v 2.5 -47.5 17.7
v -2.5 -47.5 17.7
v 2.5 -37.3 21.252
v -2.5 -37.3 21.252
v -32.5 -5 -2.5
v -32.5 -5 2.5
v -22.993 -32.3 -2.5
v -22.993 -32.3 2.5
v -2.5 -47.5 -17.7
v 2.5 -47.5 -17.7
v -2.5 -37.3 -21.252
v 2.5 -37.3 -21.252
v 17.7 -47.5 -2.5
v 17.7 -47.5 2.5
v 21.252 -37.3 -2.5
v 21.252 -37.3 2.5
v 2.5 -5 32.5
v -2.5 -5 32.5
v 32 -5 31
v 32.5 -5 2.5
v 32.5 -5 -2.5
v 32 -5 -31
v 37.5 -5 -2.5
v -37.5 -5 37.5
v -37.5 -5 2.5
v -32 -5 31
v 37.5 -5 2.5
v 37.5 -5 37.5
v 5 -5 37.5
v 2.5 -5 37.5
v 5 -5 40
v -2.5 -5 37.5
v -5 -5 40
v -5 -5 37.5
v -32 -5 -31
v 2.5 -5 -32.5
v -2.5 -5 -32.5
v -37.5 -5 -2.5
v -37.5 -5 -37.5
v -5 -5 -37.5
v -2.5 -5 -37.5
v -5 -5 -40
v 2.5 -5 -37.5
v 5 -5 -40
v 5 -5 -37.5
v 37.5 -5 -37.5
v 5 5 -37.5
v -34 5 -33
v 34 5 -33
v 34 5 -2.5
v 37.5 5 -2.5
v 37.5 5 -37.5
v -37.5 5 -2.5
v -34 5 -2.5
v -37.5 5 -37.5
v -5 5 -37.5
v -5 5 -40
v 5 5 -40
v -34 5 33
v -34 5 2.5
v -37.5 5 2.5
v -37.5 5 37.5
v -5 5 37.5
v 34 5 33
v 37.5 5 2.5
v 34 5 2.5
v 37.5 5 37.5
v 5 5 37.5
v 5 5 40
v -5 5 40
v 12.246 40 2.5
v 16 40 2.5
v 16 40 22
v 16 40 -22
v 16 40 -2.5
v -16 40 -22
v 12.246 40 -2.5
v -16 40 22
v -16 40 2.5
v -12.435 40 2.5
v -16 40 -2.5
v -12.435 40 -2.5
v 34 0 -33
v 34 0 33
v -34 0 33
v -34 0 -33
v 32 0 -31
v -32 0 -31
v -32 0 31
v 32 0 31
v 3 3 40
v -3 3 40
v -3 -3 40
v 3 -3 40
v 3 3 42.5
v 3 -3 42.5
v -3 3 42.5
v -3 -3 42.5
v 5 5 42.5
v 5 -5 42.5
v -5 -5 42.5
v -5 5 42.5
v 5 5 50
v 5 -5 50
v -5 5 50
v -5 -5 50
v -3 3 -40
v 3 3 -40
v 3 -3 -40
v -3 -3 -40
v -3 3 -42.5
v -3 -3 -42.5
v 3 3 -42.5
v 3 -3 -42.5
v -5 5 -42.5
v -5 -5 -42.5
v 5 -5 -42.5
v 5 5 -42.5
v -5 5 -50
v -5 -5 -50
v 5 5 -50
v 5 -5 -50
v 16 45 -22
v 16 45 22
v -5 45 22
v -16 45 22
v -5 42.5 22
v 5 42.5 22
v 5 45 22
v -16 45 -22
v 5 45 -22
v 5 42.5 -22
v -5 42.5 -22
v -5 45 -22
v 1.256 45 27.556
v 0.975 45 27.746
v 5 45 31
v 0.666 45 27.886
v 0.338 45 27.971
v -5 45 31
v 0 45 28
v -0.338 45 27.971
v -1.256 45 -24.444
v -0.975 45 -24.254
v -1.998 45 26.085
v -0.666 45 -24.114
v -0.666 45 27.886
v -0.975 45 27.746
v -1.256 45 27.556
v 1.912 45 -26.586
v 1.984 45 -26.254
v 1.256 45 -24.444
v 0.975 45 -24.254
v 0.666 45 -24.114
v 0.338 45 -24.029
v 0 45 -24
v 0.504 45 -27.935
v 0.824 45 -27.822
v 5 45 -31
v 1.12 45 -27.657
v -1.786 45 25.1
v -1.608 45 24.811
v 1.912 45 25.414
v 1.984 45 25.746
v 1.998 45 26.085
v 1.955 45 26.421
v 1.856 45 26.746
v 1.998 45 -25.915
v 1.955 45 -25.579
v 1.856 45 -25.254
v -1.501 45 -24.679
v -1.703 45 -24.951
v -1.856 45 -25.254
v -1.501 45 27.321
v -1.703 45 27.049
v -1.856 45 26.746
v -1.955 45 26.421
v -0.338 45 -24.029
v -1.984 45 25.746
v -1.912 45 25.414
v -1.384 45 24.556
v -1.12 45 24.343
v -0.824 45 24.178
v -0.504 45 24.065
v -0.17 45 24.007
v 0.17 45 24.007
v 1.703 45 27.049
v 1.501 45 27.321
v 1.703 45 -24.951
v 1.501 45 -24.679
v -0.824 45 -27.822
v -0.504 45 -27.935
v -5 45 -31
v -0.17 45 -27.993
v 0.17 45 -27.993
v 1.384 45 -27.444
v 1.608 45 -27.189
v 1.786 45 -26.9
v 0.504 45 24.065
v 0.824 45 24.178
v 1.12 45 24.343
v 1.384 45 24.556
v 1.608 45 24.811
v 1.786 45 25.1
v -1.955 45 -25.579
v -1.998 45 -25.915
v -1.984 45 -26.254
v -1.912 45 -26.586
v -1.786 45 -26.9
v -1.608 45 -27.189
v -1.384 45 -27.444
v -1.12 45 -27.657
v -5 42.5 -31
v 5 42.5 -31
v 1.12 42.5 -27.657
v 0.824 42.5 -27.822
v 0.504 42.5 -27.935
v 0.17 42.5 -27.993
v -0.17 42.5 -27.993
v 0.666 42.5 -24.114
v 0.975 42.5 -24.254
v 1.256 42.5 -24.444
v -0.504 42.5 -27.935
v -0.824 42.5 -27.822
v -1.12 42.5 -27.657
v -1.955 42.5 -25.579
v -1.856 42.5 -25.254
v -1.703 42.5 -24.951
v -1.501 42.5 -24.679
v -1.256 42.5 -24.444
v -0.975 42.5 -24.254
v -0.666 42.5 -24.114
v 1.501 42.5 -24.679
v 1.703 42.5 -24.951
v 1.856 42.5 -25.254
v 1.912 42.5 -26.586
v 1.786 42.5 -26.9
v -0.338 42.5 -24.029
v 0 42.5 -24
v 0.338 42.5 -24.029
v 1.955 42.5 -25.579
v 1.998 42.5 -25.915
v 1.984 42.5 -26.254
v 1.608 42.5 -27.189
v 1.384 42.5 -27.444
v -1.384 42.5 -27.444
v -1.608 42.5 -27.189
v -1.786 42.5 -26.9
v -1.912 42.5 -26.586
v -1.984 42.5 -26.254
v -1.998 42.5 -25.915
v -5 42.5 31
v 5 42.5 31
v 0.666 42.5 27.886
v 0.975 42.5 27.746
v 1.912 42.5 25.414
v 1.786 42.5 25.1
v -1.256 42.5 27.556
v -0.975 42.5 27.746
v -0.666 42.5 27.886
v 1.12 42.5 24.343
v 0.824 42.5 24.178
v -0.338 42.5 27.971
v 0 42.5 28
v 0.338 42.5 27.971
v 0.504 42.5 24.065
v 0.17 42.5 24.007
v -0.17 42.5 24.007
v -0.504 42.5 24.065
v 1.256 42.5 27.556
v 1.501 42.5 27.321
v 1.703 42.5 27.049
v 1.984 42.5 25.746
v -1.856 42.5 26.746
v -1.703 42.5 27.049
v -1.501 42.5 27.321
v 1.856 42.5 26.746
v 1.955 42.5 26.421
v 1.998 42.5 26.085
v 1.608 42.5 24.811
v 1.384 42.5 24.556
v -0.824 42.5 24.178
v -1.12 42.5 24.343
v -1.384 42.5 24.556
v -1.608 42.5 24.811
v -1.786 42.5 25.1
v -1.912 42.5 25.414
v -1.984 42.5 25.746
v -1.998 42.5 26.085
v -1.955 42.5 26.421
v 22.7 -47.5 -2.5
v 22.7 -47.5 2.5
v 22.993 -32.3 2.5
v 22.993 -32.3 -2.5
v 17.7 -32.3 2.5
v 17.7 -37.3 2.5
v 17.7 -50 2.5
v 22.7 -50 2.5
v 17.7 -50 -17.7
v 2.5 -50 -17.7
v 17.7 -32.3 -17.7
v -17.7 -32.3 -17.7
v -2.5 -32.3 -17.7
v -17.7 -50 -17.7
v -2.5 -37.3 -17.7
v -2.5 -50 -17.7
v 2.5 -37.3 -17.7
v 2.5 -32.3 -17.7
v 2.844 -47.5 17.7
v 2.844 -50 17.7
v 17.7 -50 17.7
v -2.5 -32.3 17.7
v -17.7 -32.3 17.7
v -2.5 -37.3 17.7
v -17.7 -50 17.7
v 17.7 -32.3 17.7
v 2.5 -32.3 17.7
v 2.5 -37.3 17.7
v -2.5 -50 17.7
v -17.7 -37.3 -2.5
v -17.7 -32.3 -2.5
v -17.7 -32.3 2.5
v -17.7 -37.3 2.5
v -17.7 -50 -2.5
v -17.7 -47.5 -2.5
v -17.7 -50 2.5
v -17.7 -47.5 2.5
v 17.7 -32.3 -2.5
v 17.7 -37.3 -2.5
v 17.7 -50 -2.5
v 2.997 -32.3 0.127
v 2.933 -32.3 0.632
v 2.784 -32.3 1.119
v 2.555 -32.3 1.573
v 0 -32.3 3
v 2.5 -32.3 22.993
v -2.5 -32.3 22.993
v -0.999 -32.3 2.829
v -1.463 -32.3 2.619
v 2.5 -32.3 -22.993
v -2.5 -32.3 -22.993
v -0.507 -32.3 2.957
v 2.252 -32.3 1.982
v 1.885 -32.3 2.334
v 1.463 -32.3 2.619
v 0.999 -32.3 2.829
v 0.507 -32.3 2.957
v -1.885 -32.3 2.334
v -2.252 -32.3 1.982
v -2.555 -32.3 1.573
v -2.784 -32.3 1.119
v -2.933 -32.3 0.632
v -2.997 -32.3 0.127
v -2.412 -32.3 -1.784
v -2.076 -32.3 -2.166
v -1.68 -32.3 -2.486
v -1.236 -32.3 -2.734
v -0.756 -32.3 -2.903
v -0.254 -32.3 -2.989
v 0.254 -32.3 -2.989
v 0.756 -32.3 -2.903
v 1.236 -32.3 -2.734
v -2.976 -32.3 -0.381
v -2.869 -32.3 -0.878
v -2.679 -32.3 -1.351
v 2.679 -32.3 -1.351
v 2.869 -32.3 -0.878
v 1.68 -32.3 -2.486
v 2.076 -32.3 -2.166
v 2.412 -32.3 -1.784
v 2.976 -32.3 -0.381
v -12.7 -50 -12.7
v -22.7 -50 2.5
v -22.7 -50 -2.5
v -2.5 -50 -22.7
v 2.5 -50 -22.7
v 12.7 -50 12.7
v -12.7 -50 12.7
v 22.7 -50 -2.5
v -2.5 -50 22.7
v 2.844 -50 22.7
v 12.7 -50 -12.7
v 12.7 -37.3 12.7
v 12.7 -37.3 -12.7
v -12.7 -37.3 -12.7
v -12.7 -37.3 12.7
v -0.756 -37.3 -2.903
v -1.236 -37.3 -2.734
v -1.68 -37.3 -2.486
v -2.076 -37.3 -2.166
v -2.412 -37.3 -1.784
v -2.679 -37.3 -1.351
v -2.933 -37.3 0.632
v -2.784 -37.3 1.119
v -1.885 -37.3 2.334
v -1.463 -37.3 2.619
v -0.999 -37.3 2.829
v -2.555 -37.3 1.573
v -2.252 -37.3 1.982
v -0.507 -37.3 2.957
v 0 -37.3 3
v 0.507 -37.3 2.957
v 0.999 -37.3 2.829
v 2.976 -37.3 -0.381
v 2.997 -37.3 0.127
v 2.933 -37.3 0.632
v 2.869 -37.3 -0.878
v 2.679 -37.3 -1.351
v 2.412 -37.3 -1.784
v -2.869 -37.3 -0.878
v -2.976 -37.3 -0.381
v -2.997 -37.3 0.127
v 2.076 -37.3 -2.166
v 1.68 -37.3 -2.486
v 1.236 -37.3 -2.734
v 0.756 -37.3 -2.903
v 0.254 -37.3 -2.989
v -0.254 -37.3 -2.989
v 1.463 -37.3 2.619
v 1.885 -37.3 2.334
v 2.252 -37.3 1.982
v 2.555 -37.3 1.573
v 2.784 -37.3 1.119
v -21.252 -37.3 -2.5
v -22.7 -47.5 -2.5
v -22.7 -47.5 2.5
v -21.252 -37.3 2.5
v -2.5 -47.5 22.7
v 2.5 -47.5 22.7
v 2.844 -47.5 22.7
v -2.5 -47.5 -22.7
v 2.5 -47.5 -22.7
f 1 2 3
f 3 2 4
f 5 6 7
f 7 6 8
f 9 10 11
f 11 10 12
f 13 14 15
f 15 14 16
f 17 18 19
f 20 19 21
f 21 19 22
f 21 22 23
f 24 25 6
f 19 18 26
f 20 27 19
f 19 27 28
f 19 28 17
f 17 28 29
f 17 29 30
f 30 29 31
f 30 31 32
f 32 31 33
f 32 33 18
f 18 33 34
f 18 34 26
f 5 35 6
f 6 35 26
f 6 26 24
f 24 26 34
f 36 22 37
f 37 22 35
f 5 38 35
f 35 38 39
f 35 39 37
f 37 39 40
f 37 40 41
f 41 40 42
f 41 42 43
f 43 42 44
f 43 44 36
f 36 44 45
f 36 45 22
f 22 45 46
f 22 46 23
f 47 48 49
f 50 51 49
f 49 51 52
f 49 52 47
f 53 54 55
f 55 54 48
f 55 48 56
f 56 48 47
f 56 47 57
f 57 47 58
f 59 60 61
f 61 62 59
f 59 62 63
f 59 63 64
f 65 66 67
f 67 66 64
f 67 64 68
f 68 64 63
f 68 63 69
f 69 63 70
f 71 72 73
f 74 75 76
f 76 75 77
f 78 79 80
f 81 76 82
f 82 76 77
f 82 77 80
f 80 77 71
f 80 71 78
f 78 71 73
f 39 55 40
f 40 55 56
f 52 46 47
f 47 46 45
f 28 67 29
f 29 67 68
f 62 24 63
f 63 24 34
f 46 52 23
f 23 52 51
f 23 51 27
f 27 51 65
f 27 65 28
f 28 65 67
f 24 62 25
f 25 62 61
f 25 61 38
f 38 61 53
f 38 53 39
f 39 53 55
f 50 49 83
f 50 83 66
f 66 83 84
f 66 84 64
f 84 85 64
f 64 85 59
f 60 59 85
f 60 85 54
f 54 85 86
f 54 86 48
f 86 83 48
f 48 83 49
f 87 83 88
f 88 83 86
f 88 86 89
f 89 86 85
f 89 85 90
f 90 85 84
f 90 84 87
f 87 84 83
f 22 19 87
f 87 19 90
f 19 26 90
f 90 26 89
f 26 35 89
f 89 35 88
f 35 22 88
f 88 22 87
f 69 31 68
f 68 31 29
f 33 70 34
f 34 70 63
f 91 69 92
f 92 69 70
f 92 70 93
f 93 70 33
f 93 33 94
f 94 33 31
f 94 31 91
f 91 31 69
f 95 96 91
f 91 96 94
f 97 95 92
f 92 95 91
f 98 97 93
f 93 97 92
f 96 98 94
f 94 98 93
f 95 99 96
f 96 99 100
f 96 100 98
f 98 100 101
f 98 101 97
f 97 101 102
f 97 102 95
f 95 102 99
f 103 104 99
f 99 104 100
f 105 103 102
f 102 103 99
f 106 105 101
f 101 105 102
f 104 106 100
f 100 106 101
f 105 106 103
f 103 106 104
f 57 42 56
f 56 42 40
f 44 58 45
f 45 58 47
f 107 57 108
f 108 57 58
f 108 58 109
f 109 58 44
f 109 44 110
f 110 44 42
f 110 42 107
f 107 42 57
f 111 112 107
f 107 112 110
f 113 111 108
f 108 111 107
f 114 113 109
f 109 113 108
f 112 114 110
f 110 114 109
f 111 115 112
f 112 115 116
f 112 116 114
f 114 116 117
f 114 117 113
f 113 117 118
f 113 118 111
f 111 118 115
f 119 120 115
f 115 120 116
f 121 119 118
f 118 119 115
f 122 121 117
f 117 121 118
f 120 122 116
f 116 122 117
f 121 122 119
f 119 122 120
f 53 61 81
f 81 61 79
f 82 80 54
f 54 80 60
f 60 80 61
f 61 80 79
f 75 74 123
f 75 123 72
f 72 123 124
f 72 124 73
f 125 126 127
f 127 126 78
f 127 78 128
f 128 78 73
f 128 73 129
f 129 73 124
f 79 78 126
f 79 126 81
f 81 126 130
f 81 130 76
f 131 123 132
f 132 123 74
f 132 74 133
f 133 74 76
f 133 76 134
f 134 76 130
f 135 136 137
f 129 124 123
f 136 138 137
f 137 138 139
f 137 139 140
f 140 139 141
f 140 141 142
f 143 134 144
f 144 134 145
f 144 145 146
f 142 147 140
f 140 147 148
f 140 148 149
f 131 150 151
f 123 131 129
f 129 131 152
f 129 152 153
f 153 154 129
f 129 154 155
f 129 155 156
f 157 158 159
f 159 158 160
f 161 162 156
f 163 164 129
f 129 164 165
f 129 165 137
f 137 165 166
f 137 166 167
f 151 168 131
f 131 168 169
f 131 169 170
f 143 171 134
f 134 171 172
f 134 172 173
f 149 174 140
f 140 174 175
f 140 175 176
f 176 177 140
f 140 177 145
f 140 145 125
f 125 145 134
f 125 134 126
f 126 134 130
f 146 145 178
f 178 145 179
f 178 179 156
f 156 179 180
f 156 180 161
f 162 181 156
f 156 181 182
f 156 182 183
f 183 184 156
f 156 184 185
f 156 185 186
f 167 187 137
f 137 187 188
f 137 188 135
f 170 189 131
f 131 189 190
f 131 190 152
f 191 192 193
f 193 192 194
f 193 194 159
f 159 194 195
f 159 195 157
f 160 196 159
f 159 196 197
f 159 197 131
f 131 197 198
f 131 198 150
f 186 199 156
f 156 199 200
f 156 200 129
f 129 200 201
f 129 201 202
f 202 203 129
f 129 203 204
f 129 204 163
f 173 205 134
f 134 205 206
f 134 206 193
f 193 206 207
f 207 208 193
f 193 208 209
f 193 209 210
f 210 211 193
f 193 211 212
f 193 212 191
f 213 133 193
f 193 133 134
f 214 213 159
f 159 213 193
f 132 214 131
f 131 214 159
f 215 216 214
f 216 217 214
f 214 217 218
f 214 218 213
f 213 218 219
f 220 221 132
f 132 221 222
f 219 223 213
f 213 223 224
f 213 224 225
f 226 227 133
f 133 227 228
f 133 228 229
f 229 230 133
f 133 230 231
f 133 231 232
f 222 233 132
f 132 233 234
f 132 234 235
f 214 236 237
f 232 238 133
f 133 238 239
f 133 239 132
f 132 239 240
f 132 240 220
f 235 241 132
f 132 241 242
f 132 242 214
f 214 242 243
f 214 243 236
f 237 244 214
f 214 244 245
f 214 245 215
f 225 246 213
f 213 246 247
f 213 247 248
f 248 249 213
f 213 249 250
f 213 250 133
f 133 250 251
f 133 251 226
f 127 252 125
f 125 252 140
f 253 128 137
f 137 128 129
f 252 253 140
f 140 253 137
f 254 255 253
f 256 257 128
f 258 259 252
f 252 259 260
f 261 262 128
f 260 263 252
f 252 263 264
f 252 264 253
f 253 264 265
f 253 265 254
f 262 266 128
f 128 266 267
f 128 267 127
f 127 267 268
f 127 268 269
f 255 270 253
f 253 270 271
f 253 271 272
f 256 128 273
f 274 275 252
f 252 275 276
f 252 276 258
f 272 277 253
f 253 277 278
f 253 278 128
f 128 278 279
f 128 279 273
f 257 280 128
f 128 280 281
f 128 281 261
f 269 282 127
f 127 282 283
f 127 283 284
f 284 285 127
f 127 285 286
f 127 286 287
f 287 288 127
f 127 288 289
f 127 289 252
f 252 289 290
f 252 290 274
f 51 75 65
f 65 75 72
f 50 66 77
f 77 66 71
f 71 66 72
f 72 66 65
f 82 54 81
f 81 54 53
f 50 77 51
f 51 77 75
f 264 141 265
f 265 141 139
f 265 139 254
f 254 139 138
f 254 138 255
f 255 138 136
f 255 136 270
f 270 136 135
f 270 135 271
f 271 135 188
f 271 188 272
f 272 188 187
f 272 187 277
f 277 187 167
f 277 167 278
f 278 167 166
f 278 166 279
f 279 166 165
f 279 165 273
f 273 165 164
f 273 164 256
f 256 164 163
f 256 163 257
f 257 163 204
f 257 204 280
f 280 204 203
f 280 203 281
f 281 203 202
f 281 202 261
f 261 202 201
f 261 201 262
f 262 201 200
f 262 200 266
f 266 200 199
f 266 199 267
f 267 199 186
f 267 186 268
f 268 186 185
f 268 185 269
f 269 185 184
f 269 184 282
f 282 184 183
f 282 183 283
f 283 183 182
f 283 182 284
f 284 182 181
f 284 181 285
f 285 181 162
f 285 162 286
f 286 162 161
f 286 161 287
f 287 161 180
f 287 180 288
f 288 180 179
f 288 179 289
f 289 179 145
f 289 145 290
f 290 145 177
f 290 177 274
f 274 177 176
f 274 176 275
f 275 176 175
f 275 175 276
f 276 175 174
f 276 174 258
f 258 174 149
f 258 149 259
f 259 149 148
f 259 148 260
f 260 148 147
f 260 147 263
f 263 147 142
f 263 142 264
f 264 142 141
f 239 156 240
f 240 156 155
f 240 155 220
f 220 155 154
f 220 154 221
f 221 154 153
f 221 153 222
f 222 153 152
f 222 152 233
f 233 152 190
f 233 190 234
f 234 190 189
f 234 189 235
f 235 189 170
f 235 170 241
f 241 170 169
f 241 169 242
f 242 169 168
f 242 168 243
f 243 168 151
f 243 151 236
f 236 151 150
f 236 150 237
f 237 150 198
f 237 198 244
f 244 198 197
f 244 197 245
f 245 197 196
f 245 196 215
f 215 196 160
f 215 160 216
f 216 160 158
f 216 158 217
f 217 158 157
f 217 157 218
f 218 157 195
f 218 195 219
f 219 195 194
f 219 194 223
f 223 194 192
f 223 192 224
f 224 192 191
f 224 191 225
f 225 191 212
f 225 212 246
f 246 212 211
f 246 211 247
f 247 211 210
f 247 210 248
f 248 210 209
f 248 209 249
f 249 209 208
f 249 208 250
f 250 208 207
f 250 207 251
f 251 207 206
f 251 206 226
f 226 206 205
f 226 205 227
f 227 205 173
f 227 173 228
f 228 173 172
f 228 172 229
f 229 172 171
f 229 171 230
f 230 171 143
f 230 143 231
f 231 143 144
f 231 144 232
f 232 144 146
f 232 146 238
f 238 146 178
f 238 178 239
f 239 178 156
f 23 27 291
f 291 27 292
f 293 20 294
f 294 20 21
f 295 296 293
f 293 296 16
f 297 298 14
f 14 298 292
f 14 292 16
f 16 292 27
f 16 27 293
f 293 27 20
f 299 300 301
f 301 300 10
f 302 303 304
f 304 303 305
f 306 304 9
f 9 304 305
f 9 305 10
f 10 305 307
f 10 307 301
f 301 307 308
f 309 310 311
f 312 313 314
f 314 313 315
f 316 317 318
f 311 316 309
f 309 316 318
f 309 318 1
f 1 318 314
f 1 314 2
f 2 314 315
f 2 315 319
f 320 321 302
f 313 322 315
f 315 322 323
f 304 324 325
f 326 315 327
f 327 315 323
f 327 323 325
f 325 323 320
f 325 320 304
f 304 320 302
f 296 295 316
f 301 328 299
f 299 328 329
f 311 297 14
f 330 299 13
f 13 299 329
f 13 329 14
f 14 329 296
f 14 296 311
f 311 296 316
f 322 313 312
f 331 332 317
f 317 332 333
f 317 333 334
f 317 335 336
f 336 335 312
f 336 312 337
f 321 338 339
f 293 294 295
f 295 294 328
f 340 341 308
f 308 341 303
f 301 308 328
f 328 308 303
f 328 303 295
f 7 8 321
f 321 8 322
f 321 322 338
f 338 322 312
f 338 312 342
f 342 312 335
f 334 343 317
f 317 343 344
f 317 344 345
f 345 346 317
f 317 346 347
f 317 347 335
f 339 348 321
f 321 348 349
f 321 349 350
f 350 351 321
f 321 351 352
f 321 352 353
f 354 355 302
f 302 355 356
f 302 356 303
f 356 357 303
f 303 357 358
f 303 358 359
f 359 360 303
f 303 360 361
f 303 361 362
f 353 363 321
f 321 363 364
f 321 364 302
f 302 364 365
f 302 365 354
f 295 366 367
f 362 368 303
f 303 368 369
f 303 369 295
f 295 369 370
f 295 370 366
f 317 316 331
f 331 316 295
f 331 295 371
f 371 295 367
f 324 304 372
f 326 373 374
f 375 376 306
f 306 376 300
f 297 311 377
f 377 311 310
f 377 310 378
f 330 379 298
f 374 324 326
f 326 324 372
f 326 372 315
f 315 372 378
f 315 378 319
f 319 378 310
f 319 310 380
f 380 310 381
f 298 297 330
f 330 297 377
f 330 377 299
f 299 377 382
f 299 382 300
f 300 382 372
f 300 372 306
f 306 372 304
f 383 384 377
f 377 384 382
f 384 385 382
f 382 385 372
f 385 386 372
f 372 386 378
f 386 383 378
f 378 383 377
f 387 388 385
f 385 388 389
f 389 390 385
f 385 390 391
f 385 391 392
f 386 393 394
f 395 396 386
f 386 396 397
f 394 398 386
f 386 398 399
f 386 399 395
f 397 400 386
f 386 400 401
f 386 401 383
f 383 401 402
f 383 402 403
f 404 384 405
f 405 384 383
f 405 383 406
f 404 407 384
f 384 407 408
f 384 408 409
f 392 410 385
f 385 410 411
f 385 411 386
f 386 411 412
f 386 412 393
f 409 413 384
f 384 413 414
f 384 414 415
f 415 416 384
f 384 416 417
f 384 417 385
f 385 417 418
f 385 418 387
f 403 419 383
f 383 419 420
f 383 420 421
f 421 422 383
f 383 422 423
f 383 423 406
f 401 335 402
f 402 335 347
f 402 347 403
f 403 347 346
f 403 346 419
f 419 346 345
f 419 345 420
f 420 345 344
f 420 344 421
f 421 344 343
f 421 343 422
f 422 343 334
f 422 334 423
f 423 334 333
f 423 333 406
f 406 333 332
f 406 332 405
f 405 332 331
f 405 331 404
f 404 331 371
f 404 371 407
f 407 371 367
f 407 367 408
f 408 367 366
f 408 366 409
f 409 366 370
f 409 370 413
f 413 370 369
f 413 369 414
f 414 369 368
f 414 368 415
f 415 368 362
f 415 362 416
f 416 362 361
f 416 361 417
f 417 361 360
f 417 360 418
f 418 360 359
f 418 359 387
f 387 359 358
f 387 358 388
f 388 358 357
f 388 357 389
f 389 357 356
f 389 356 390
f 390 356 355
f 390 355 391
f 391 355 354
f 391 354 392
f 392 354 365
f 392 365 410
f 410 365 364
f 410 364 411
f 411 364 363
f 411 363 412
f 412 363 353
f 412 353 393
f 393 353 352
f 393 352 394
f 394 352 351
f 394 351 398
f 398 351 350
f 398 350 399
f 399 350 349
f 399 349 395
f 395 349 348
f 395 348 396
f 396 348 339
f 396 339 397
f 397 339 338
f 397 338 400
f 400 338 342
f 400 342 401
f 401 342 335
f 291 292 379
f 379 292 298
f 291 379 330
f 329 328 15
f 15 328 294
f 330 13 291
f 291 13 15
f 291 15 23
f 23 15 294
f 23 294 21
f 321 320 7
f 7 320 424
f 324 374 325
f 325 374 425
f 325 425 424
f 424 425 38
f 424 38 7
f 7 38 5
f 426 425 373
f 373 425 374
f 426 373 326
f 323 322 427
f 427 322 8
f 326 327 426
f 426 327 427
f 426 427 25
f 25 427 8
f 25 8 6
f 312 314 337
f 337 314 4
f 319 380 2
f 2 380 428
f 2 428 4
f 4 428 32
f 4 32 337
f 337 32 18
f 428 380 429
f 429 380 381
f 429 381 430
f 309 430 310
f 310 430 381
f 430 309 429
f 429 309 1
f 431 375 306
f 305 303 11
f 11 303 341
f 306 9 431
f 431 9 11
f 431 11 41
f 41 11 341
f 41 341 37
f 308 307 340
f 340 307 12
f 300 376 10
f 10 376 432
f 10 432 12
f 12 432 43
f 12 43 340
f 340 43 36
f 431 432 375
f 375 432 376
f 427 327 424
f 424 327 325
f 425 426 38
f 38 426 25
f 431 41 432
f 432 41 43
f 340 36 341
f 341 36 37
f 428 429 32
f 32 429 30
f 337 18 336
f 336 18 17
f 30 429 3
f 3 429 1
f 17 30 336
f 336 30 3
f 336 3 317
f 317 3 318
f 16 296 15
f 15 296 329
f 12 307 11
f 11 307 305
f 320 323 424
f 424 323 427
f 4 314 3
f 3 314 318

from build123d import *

# Parameters (mm, degrees)
SKETCH2_W                   = 75
SKETCH2_H                   = 75
BOSS_EXTRUDE1_DEPTH         = 5
SKETCH2_2_W                 = 75
SKETCH2_2_H                 = 75
BOSS_EXTRUDE2_DEPTH         = 5
SKETCH4_W                   = 68
SKETCH4_H                   = 66
CUT_EXTRUDE1_DEPTH          = 5
SKETCH5_W                   = 64
SKETCH5_H                   = 62
CUT_EXTRUDE2_DEPTH          = 5
SKETCH6_W                   = 10
SKETCH6_H                   = 10
BOSS_EXTRUDE3_DEPTH         = 2.5
SKETCH7_W                   = 6
SKETCH7_H                   = 6
BOSS_EXTRUDE4_DEPTH         = 2.5
SKETCH8_W                   = 10
SKETCH8_H                   = 10
BOSS_EXTRUDE5_DEPTH         = 7.5
SKETCH9_W                   = 10
SKETCH9_H                   = 10
BOSS_EXTRUDE6_DEPTH         = 2.5
SKETCH10_W                  = 6
SKETCH10_H                  = 6
BOSS_EXTRUDE7_DEPTH         = 2.5
SKETCH11_W                  = 10
SKETCH11_H                  = 10
BOSS_EXTRUDE8_DEPTH         = 7.5
SKETCH14_W                  = 35.4
SKETCH14_H                  = 35.4
BOSS_EXTRUDE9_DEPTH         = 17.7
SKETCH15_W                  = 25.4
SKETCH15_H                  = 25.4
CUT_EXTRUDE3_DEPTH          = 12.7
SKETCH32_R                  = 3
CUT_EXTRUDE6_DEPTH          = 5
SKETCH16_W                  = 32
SKETCH16_H                  = 44
BOSS_EXTRUDE10_DEPTH        = 5
SKETCH18_W                  = 10
SKETCH18_H                  = 9
BOSS_EXTRUDE12_DEPTH        = 2.5
BOSS_EXTRUDE13_DEPTH        = 2.5
BOSS_EXTRUDE14_DEPTH        = 2.5
SKETCH31_R                  = 2
CHARGER_SUPPORT_HOLES_DEPTH = 2.5
SKETCH27_W                  = 5
SKETCH27_H                  = 5
SKETCH27_W_2                = 5.344431893
EYEBOLT_BOLT_SUPPORTS_DEPTH = 2.5
BOSS_EXTRUDE15_DEPTH        = 2.5
BOSS_EXTRUDE16_DEPTH        = 2.5
BOSS_EXTRUDE17_DEPTH        = 2.5
BOSS_EXTRUDE18_DEPTH        = 2.5
SKETCH33_W                  = 6.3
SKETCH33_H                  = 5
SKETCH33_W_2                = 5
SKETCH33_H_2                = 6.3
EYEBOLT_MINI_SUPPORTS_DEPTH = 5


with BuildPart() as part:
    # Sketch2 → Boss-Extrude1 (new body)
    with BuildSketch(Plane(origin=(0, 0, 0), x_dir=(1, 0, 0), z_dir=(0, 1, 0))):
        Rectangle(SKETCH2_W, SKETCH2_H)
    extrude(amount=BOSS_EXTRUDE1_DEPTH)

    # Sketch2<2> → Boss-Extrude2 (add)
    with BuildSketch(Plane(origin=(0, 0, 0), x_dir=(1, 0, 0), z_dir=(0, 1, 0))):
        Rectangle(SKETCH2_2_W, SKETCH2_2_H)
    extrude(amount=-BOSS_EXTRUDE2_DEPTH)

    # Sketch4 → Cut-Extrude1 (cut)
    with BuildSketch(Plane(origin=(0, 5, 0), x_dir=(1, 0, 0), z_dir=(0, 1, 0))):
        Rectangle(SKETCH4_W, SKETCH4_H)
    extrude(amount=-CUT_EXTRUDE1_DEPTH, mode=Mode.SUBTRACT)

    # Sketch5 → Cut-Extrude2 (cut)
    with BuildSketch(Plane(origin=(0, 0, 0), x_dir=(1, 0, 0), z_dir=(0, 1, 0))):
        Rectangle(SKETCH5_W, SKETCH5_H)
    extrude(amount=-CUT_EXTRUDE2_DEPTH, mode=Mode.SUBTRACT)

    # Sketch6 → Boss-Extrude3 (add)
    with BuildSketch(Plane.XY.offset(37.5)):
        Rectangle(SKETCH6_W, SKETCH6_H)
    extrude(amount=BOSS_EXTRUDE3_DEPTH)

    # Sketch7 → Boss-Extrude4 (add)
    with BuildSketch(Plane.XY.offset(40)):
        Rectangle(SKETCH7_W, SKETCH7_H)
    extrude(amount=BOSS_EXTRUDE4_DEPTH)

    # Sketch8 → Boss-Extrude5 (add)
    with BuildSketch(Plane.XY.offset(42.5)):
        Rectangle(SKETCH8_W, SKETCH8_H)
    extrude(amount=BOSS_EXTRUDE5_DEPTH)

    # Sketch9 → Boss-Extrude6 (add)
    with BuildSketch(Plane(origin=(0, 0, -37.5), x_dir=(-1, 0, 0), z_dir=(0, 0, -1))):
        Rectangle(SKETCH9_W, SKETCH9_H)
    extrude(amount=BOSS_EXTRUDE6_DEPTH)

    # Sketch10 → Boss-Extrude7 (add)
    with BuildSketch(Plane(origin=(0, 0, -40), x_dir=(-1, 0, 0), z_dir=(0, 0, -1))):
        Rectangle(SKETCH10_W, SKETCH10_H)
    extrude(amount=BOSS_EXTRUDE7_DEPTH)

    # Sketch11 → Boss-Extrude8 (add)
    with BuildSketch(Plane(origin=(0, 0, -42.5), x_dir=(-1, 0, 0), z_dir=(0, 0, -1))):
        Rectangle(SKETCH11_W, SKETCH11_H)
    extrude(amount=BOSS_EXTRUDE8_DEPTH)



with BuildPart() as body_2:
    # Sketch14 → Boss-Extrude9 (new body)
    with BuildSketch(Plane(origin=(0, -50, 0), x_dir=(1, 0, 0), z_dir=(0, 1, 0))):
        Rectangle(SKETCH14_W, SKETCH14_H)
    extrude(amount=BOSS_EXTRUDE9_DEPTH)

    # Sketch15 → Cut-Extrude3 (cut)
    with BuildSketch(Plane.XZ.offset(50)):
        Rectangle(SKETCH15_W, SKETCH15_H)
    extrude(amount=-CUT_EXTRUDE3_DEPTH, mode=Mode.SUBTRACT)

    # Sketch32 → Cut-Extrude6 (cut)
    with BuildSketch(Plane(origin=(0, -32.3, 0), x_dir=(1, 0, 0), z_dir=(0, 1, 0))):
        Circle(SKETCH32_R)
    extrude(amount=-CUT_EXTRUDE6_DEPTH, mode=Mode.SUBTRACT)

    # Sketch27 → Eyebolt Bolt Supports (add)
    with BuildSketch(Plane(origin=(0, -50, 0), x_dir=(-1, 0, 0), z_dir=(0, -1, 0))):
        with Locations((-20.2, 0)):
            Rectangle(SKETCH27_W, SKETCH27_H)
        with Locations((20.2, 0)):
            Rectangle(SKETCH27_W, SKETCH27_H)
        with Locations((-0.172215947, -20.2)):
            Rectangle(SKETCH27_W_2, SKETCH27_H)
        with Locations((0, 20.2)):
            Rectangle(SKETCH27_W, SKETCH27_H)
    extrude(amount=-EYEBOLT_BOLT_SUPPORTS_DEPTH)


with BuildPart() as body_3:
    # Sketch16 → Boss-Extrude10 (new body)
    with BuildSketch(Plane(origin=(0, 45, 0), x_dir=(1, 0, 0), z_dir=(0, 1, 0))):
        Rectangle(SKETCH16_W, SKETCH16_H)
    extrude(amount=-BOSS_EXTRUDE10_DEPTH)

    # Sketch18 → Boss-Extrude12 (add)
    with BuildSketch(Plane(origin=(0, 45, 0), x_dir=(1, 0, 0), z_dir=(0, 1, 0))):
        with Locations((0, 26.5)):
            Rectangle(SKETCH18_W, SKETCH18_H)
        with Locations((0, -26.5)):
            Rectangle(SKETCH18_W, SKETCH18_H)
    extrude(amount=-BOSS_EXTRUDE12_DEPTH)


with BuildPart() as part_1:
    add(part.part)

    add(body_3.part)  # Boss-Extrude13 merges body 3
    # Sketch21 → Boss-Extrude13 (add)
    with BuildSketch(Plane.XY):
        Polygon((-37.5, 5), (-34, 5), (-12.434815796, 40), (-16, 40), align=None)
        Polygon((37.5, 5), (34, 5), (12.245590879, 40), (16, 40), align=None)
    extrude(amount=BOSS_EXTRUDE13_DEPTH)

    # Sketch21<2> → Boss-Extrude14 (add)
    with BuildSketch(Plane.XY):
        Polygon((-37.5, 5), (-34, 5), (-12.434815796, 40), (-16, 40), align=None)
        Polygon((37.5, 5), (34, 5), (12.245590879, 40), (16, 40), align=None)
    extrude(amount=-BOSS_EXTRUDE14_DEPTH)

    # Sketch31 → Charger Support Holes (cut)
    with BuildSketch(Plane(origin=(0, 45, 0), x_dir=(1, 0, 0), z_dir=(0, 1, 0))):
        with Locations((0, 26)):
            Circle(SKETCH31_R)
        with Locations((0, -26)):
            Circle(SKETCH31_R)
    extrude(amount=-CHARGER_SUPPORT_HOLES_DEPTH, mode=Mode.SUBTRACT)


    add(body_2.part)  # Boss-Extrude15 merges body 2
    # Sketch28 → Boss-Extrude15 (add)
    with BuildSketch(Plane.XY):
        Polygon((22.7, -47.5), (37.5, -5), (32.5, -5), (17.7, -47.5), align=None)
        Polygon((-22.7, -47.5), (-37.5, -5), (-32.5, -5), (-17.7, -47.5), align=None)
    extrude(amount=BOSS_EXTRUDE15_DEPTH)

    # Sketch28<2> → Boss-Extrude16 (add)
    with BuildSketch(Plane.XY):
        Polygon((22.7, -47.5), (37.5, -5), (32.5, -5), (17.7, -47.5), align=None)
        Polygon((-22.7, -47.5), (-37.5, -5), (-32.5, -5), (-17.7, -47.5), align=None)
    extrude(amount=-BOSS_EXTRUDE16_DEPTH)

    # Sketch30 → Boss-Extrude17 (add)
    with BuildSketch(Plane(origin=(0, 0, 0), x_dir=(0, 0, -1), z_dir=(1, 0, 0))):
        Polygon((22.7, -47.5), (37.5, -5), (32.5, -5), (17.7, -47.5), align=None)
        Polygon((-37.5, -5), (-22.7, -47.5), (-17.7, -47.5), (-32.5, -5), align=None)
    extrude(amount=BOSS_EXTRUDE17_DEPTH)

    # Sketch30<2> → Boss-Extrude18 (add)
    with BuildSketch(Plane(origin=(0, 0, 0), x_dir=(0, 0, -1), z_dir=(1, 0, 0))):
        Polygon((22.7, -47.5), (37.5, -5), (32.5, -5), (17.7, -47.5), align=None)
        Polygon((-37.5, -5), (-22.7, -47.5), (-17.7, -47.5), (-32.5, -5), align=None)
    extrude(amount=-BOSS_EXTRUDE18_DEPTH)

    # Sketch33 → Eyebolt Mini Supports (add)
    with BuildSketch(Plane(origin=(0, -32.3, 0), x_dir=(1, 0, 0), z_dir=(0, 1, 0))):
        with Locations((20.85, 0)):
            Rectangle(SKETCH33_W, SKETCH33_H)
        with Locations((0, 20.85)):
            Rectangle(SKETCH33_W_2, SKETCH33_H_2)
        with Locations((-20.85, 0)):
            Rectangle(SKETCH33_W, SKETCH33_H)
        with Locations((0, -20.85)):
            Rectangle(SKETCH33_W_2, SKETCH33_H_2)
    extrude(amount=-EYEBOLT_MINI_SUPPORTS_DEPTH)


solid = part_1.part
